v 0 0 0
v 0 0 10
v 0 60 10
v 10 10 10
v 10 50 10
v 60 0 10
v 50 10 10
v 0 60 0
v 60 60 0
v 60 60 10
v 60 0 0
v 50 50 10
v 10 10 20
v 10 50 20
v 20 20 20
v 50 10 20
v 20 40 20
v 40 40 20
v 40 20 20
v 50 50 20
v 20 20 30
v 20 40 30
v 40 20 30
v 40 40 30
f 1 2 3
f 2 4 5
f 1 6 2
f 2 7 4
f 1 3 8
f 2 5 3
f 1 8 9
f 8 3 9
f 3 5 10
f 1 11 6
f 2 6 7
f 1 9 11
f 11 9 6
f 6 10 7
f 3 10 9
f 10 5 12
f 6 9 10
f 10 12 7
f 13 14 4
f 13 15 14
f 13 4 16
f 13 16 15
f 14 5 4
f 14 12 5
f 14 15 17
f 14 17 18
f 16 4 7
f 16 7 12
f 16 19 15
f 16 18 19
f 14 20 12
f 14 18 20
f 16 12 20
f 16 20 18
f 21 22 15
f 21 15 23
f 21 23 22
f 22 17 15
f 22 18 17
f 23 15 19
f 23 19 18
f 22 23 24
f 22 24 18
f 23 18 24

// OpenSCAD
// 3段の階段状ピラミッド
// 各段は中心を揃えて積み上げる

module step_pyramid() {
    // 1段目: 60 x 60 x 10 (z = 0 〜 10)
    translate([0, 0, 0])
        cube([60, 60, 10], center = false);

    // 2段目: 40 x 40 x 10 (z = 10 〜 20)
    translate([10, 10, 10])
        cube([40, 40, 10], center = false);

    // 3段目: 20 x 20 x 10 (z = 20 〜 30)
    translate([20, 20, 20])
        cube([20, 20, 10], center = false);
}

step_pyramid();
